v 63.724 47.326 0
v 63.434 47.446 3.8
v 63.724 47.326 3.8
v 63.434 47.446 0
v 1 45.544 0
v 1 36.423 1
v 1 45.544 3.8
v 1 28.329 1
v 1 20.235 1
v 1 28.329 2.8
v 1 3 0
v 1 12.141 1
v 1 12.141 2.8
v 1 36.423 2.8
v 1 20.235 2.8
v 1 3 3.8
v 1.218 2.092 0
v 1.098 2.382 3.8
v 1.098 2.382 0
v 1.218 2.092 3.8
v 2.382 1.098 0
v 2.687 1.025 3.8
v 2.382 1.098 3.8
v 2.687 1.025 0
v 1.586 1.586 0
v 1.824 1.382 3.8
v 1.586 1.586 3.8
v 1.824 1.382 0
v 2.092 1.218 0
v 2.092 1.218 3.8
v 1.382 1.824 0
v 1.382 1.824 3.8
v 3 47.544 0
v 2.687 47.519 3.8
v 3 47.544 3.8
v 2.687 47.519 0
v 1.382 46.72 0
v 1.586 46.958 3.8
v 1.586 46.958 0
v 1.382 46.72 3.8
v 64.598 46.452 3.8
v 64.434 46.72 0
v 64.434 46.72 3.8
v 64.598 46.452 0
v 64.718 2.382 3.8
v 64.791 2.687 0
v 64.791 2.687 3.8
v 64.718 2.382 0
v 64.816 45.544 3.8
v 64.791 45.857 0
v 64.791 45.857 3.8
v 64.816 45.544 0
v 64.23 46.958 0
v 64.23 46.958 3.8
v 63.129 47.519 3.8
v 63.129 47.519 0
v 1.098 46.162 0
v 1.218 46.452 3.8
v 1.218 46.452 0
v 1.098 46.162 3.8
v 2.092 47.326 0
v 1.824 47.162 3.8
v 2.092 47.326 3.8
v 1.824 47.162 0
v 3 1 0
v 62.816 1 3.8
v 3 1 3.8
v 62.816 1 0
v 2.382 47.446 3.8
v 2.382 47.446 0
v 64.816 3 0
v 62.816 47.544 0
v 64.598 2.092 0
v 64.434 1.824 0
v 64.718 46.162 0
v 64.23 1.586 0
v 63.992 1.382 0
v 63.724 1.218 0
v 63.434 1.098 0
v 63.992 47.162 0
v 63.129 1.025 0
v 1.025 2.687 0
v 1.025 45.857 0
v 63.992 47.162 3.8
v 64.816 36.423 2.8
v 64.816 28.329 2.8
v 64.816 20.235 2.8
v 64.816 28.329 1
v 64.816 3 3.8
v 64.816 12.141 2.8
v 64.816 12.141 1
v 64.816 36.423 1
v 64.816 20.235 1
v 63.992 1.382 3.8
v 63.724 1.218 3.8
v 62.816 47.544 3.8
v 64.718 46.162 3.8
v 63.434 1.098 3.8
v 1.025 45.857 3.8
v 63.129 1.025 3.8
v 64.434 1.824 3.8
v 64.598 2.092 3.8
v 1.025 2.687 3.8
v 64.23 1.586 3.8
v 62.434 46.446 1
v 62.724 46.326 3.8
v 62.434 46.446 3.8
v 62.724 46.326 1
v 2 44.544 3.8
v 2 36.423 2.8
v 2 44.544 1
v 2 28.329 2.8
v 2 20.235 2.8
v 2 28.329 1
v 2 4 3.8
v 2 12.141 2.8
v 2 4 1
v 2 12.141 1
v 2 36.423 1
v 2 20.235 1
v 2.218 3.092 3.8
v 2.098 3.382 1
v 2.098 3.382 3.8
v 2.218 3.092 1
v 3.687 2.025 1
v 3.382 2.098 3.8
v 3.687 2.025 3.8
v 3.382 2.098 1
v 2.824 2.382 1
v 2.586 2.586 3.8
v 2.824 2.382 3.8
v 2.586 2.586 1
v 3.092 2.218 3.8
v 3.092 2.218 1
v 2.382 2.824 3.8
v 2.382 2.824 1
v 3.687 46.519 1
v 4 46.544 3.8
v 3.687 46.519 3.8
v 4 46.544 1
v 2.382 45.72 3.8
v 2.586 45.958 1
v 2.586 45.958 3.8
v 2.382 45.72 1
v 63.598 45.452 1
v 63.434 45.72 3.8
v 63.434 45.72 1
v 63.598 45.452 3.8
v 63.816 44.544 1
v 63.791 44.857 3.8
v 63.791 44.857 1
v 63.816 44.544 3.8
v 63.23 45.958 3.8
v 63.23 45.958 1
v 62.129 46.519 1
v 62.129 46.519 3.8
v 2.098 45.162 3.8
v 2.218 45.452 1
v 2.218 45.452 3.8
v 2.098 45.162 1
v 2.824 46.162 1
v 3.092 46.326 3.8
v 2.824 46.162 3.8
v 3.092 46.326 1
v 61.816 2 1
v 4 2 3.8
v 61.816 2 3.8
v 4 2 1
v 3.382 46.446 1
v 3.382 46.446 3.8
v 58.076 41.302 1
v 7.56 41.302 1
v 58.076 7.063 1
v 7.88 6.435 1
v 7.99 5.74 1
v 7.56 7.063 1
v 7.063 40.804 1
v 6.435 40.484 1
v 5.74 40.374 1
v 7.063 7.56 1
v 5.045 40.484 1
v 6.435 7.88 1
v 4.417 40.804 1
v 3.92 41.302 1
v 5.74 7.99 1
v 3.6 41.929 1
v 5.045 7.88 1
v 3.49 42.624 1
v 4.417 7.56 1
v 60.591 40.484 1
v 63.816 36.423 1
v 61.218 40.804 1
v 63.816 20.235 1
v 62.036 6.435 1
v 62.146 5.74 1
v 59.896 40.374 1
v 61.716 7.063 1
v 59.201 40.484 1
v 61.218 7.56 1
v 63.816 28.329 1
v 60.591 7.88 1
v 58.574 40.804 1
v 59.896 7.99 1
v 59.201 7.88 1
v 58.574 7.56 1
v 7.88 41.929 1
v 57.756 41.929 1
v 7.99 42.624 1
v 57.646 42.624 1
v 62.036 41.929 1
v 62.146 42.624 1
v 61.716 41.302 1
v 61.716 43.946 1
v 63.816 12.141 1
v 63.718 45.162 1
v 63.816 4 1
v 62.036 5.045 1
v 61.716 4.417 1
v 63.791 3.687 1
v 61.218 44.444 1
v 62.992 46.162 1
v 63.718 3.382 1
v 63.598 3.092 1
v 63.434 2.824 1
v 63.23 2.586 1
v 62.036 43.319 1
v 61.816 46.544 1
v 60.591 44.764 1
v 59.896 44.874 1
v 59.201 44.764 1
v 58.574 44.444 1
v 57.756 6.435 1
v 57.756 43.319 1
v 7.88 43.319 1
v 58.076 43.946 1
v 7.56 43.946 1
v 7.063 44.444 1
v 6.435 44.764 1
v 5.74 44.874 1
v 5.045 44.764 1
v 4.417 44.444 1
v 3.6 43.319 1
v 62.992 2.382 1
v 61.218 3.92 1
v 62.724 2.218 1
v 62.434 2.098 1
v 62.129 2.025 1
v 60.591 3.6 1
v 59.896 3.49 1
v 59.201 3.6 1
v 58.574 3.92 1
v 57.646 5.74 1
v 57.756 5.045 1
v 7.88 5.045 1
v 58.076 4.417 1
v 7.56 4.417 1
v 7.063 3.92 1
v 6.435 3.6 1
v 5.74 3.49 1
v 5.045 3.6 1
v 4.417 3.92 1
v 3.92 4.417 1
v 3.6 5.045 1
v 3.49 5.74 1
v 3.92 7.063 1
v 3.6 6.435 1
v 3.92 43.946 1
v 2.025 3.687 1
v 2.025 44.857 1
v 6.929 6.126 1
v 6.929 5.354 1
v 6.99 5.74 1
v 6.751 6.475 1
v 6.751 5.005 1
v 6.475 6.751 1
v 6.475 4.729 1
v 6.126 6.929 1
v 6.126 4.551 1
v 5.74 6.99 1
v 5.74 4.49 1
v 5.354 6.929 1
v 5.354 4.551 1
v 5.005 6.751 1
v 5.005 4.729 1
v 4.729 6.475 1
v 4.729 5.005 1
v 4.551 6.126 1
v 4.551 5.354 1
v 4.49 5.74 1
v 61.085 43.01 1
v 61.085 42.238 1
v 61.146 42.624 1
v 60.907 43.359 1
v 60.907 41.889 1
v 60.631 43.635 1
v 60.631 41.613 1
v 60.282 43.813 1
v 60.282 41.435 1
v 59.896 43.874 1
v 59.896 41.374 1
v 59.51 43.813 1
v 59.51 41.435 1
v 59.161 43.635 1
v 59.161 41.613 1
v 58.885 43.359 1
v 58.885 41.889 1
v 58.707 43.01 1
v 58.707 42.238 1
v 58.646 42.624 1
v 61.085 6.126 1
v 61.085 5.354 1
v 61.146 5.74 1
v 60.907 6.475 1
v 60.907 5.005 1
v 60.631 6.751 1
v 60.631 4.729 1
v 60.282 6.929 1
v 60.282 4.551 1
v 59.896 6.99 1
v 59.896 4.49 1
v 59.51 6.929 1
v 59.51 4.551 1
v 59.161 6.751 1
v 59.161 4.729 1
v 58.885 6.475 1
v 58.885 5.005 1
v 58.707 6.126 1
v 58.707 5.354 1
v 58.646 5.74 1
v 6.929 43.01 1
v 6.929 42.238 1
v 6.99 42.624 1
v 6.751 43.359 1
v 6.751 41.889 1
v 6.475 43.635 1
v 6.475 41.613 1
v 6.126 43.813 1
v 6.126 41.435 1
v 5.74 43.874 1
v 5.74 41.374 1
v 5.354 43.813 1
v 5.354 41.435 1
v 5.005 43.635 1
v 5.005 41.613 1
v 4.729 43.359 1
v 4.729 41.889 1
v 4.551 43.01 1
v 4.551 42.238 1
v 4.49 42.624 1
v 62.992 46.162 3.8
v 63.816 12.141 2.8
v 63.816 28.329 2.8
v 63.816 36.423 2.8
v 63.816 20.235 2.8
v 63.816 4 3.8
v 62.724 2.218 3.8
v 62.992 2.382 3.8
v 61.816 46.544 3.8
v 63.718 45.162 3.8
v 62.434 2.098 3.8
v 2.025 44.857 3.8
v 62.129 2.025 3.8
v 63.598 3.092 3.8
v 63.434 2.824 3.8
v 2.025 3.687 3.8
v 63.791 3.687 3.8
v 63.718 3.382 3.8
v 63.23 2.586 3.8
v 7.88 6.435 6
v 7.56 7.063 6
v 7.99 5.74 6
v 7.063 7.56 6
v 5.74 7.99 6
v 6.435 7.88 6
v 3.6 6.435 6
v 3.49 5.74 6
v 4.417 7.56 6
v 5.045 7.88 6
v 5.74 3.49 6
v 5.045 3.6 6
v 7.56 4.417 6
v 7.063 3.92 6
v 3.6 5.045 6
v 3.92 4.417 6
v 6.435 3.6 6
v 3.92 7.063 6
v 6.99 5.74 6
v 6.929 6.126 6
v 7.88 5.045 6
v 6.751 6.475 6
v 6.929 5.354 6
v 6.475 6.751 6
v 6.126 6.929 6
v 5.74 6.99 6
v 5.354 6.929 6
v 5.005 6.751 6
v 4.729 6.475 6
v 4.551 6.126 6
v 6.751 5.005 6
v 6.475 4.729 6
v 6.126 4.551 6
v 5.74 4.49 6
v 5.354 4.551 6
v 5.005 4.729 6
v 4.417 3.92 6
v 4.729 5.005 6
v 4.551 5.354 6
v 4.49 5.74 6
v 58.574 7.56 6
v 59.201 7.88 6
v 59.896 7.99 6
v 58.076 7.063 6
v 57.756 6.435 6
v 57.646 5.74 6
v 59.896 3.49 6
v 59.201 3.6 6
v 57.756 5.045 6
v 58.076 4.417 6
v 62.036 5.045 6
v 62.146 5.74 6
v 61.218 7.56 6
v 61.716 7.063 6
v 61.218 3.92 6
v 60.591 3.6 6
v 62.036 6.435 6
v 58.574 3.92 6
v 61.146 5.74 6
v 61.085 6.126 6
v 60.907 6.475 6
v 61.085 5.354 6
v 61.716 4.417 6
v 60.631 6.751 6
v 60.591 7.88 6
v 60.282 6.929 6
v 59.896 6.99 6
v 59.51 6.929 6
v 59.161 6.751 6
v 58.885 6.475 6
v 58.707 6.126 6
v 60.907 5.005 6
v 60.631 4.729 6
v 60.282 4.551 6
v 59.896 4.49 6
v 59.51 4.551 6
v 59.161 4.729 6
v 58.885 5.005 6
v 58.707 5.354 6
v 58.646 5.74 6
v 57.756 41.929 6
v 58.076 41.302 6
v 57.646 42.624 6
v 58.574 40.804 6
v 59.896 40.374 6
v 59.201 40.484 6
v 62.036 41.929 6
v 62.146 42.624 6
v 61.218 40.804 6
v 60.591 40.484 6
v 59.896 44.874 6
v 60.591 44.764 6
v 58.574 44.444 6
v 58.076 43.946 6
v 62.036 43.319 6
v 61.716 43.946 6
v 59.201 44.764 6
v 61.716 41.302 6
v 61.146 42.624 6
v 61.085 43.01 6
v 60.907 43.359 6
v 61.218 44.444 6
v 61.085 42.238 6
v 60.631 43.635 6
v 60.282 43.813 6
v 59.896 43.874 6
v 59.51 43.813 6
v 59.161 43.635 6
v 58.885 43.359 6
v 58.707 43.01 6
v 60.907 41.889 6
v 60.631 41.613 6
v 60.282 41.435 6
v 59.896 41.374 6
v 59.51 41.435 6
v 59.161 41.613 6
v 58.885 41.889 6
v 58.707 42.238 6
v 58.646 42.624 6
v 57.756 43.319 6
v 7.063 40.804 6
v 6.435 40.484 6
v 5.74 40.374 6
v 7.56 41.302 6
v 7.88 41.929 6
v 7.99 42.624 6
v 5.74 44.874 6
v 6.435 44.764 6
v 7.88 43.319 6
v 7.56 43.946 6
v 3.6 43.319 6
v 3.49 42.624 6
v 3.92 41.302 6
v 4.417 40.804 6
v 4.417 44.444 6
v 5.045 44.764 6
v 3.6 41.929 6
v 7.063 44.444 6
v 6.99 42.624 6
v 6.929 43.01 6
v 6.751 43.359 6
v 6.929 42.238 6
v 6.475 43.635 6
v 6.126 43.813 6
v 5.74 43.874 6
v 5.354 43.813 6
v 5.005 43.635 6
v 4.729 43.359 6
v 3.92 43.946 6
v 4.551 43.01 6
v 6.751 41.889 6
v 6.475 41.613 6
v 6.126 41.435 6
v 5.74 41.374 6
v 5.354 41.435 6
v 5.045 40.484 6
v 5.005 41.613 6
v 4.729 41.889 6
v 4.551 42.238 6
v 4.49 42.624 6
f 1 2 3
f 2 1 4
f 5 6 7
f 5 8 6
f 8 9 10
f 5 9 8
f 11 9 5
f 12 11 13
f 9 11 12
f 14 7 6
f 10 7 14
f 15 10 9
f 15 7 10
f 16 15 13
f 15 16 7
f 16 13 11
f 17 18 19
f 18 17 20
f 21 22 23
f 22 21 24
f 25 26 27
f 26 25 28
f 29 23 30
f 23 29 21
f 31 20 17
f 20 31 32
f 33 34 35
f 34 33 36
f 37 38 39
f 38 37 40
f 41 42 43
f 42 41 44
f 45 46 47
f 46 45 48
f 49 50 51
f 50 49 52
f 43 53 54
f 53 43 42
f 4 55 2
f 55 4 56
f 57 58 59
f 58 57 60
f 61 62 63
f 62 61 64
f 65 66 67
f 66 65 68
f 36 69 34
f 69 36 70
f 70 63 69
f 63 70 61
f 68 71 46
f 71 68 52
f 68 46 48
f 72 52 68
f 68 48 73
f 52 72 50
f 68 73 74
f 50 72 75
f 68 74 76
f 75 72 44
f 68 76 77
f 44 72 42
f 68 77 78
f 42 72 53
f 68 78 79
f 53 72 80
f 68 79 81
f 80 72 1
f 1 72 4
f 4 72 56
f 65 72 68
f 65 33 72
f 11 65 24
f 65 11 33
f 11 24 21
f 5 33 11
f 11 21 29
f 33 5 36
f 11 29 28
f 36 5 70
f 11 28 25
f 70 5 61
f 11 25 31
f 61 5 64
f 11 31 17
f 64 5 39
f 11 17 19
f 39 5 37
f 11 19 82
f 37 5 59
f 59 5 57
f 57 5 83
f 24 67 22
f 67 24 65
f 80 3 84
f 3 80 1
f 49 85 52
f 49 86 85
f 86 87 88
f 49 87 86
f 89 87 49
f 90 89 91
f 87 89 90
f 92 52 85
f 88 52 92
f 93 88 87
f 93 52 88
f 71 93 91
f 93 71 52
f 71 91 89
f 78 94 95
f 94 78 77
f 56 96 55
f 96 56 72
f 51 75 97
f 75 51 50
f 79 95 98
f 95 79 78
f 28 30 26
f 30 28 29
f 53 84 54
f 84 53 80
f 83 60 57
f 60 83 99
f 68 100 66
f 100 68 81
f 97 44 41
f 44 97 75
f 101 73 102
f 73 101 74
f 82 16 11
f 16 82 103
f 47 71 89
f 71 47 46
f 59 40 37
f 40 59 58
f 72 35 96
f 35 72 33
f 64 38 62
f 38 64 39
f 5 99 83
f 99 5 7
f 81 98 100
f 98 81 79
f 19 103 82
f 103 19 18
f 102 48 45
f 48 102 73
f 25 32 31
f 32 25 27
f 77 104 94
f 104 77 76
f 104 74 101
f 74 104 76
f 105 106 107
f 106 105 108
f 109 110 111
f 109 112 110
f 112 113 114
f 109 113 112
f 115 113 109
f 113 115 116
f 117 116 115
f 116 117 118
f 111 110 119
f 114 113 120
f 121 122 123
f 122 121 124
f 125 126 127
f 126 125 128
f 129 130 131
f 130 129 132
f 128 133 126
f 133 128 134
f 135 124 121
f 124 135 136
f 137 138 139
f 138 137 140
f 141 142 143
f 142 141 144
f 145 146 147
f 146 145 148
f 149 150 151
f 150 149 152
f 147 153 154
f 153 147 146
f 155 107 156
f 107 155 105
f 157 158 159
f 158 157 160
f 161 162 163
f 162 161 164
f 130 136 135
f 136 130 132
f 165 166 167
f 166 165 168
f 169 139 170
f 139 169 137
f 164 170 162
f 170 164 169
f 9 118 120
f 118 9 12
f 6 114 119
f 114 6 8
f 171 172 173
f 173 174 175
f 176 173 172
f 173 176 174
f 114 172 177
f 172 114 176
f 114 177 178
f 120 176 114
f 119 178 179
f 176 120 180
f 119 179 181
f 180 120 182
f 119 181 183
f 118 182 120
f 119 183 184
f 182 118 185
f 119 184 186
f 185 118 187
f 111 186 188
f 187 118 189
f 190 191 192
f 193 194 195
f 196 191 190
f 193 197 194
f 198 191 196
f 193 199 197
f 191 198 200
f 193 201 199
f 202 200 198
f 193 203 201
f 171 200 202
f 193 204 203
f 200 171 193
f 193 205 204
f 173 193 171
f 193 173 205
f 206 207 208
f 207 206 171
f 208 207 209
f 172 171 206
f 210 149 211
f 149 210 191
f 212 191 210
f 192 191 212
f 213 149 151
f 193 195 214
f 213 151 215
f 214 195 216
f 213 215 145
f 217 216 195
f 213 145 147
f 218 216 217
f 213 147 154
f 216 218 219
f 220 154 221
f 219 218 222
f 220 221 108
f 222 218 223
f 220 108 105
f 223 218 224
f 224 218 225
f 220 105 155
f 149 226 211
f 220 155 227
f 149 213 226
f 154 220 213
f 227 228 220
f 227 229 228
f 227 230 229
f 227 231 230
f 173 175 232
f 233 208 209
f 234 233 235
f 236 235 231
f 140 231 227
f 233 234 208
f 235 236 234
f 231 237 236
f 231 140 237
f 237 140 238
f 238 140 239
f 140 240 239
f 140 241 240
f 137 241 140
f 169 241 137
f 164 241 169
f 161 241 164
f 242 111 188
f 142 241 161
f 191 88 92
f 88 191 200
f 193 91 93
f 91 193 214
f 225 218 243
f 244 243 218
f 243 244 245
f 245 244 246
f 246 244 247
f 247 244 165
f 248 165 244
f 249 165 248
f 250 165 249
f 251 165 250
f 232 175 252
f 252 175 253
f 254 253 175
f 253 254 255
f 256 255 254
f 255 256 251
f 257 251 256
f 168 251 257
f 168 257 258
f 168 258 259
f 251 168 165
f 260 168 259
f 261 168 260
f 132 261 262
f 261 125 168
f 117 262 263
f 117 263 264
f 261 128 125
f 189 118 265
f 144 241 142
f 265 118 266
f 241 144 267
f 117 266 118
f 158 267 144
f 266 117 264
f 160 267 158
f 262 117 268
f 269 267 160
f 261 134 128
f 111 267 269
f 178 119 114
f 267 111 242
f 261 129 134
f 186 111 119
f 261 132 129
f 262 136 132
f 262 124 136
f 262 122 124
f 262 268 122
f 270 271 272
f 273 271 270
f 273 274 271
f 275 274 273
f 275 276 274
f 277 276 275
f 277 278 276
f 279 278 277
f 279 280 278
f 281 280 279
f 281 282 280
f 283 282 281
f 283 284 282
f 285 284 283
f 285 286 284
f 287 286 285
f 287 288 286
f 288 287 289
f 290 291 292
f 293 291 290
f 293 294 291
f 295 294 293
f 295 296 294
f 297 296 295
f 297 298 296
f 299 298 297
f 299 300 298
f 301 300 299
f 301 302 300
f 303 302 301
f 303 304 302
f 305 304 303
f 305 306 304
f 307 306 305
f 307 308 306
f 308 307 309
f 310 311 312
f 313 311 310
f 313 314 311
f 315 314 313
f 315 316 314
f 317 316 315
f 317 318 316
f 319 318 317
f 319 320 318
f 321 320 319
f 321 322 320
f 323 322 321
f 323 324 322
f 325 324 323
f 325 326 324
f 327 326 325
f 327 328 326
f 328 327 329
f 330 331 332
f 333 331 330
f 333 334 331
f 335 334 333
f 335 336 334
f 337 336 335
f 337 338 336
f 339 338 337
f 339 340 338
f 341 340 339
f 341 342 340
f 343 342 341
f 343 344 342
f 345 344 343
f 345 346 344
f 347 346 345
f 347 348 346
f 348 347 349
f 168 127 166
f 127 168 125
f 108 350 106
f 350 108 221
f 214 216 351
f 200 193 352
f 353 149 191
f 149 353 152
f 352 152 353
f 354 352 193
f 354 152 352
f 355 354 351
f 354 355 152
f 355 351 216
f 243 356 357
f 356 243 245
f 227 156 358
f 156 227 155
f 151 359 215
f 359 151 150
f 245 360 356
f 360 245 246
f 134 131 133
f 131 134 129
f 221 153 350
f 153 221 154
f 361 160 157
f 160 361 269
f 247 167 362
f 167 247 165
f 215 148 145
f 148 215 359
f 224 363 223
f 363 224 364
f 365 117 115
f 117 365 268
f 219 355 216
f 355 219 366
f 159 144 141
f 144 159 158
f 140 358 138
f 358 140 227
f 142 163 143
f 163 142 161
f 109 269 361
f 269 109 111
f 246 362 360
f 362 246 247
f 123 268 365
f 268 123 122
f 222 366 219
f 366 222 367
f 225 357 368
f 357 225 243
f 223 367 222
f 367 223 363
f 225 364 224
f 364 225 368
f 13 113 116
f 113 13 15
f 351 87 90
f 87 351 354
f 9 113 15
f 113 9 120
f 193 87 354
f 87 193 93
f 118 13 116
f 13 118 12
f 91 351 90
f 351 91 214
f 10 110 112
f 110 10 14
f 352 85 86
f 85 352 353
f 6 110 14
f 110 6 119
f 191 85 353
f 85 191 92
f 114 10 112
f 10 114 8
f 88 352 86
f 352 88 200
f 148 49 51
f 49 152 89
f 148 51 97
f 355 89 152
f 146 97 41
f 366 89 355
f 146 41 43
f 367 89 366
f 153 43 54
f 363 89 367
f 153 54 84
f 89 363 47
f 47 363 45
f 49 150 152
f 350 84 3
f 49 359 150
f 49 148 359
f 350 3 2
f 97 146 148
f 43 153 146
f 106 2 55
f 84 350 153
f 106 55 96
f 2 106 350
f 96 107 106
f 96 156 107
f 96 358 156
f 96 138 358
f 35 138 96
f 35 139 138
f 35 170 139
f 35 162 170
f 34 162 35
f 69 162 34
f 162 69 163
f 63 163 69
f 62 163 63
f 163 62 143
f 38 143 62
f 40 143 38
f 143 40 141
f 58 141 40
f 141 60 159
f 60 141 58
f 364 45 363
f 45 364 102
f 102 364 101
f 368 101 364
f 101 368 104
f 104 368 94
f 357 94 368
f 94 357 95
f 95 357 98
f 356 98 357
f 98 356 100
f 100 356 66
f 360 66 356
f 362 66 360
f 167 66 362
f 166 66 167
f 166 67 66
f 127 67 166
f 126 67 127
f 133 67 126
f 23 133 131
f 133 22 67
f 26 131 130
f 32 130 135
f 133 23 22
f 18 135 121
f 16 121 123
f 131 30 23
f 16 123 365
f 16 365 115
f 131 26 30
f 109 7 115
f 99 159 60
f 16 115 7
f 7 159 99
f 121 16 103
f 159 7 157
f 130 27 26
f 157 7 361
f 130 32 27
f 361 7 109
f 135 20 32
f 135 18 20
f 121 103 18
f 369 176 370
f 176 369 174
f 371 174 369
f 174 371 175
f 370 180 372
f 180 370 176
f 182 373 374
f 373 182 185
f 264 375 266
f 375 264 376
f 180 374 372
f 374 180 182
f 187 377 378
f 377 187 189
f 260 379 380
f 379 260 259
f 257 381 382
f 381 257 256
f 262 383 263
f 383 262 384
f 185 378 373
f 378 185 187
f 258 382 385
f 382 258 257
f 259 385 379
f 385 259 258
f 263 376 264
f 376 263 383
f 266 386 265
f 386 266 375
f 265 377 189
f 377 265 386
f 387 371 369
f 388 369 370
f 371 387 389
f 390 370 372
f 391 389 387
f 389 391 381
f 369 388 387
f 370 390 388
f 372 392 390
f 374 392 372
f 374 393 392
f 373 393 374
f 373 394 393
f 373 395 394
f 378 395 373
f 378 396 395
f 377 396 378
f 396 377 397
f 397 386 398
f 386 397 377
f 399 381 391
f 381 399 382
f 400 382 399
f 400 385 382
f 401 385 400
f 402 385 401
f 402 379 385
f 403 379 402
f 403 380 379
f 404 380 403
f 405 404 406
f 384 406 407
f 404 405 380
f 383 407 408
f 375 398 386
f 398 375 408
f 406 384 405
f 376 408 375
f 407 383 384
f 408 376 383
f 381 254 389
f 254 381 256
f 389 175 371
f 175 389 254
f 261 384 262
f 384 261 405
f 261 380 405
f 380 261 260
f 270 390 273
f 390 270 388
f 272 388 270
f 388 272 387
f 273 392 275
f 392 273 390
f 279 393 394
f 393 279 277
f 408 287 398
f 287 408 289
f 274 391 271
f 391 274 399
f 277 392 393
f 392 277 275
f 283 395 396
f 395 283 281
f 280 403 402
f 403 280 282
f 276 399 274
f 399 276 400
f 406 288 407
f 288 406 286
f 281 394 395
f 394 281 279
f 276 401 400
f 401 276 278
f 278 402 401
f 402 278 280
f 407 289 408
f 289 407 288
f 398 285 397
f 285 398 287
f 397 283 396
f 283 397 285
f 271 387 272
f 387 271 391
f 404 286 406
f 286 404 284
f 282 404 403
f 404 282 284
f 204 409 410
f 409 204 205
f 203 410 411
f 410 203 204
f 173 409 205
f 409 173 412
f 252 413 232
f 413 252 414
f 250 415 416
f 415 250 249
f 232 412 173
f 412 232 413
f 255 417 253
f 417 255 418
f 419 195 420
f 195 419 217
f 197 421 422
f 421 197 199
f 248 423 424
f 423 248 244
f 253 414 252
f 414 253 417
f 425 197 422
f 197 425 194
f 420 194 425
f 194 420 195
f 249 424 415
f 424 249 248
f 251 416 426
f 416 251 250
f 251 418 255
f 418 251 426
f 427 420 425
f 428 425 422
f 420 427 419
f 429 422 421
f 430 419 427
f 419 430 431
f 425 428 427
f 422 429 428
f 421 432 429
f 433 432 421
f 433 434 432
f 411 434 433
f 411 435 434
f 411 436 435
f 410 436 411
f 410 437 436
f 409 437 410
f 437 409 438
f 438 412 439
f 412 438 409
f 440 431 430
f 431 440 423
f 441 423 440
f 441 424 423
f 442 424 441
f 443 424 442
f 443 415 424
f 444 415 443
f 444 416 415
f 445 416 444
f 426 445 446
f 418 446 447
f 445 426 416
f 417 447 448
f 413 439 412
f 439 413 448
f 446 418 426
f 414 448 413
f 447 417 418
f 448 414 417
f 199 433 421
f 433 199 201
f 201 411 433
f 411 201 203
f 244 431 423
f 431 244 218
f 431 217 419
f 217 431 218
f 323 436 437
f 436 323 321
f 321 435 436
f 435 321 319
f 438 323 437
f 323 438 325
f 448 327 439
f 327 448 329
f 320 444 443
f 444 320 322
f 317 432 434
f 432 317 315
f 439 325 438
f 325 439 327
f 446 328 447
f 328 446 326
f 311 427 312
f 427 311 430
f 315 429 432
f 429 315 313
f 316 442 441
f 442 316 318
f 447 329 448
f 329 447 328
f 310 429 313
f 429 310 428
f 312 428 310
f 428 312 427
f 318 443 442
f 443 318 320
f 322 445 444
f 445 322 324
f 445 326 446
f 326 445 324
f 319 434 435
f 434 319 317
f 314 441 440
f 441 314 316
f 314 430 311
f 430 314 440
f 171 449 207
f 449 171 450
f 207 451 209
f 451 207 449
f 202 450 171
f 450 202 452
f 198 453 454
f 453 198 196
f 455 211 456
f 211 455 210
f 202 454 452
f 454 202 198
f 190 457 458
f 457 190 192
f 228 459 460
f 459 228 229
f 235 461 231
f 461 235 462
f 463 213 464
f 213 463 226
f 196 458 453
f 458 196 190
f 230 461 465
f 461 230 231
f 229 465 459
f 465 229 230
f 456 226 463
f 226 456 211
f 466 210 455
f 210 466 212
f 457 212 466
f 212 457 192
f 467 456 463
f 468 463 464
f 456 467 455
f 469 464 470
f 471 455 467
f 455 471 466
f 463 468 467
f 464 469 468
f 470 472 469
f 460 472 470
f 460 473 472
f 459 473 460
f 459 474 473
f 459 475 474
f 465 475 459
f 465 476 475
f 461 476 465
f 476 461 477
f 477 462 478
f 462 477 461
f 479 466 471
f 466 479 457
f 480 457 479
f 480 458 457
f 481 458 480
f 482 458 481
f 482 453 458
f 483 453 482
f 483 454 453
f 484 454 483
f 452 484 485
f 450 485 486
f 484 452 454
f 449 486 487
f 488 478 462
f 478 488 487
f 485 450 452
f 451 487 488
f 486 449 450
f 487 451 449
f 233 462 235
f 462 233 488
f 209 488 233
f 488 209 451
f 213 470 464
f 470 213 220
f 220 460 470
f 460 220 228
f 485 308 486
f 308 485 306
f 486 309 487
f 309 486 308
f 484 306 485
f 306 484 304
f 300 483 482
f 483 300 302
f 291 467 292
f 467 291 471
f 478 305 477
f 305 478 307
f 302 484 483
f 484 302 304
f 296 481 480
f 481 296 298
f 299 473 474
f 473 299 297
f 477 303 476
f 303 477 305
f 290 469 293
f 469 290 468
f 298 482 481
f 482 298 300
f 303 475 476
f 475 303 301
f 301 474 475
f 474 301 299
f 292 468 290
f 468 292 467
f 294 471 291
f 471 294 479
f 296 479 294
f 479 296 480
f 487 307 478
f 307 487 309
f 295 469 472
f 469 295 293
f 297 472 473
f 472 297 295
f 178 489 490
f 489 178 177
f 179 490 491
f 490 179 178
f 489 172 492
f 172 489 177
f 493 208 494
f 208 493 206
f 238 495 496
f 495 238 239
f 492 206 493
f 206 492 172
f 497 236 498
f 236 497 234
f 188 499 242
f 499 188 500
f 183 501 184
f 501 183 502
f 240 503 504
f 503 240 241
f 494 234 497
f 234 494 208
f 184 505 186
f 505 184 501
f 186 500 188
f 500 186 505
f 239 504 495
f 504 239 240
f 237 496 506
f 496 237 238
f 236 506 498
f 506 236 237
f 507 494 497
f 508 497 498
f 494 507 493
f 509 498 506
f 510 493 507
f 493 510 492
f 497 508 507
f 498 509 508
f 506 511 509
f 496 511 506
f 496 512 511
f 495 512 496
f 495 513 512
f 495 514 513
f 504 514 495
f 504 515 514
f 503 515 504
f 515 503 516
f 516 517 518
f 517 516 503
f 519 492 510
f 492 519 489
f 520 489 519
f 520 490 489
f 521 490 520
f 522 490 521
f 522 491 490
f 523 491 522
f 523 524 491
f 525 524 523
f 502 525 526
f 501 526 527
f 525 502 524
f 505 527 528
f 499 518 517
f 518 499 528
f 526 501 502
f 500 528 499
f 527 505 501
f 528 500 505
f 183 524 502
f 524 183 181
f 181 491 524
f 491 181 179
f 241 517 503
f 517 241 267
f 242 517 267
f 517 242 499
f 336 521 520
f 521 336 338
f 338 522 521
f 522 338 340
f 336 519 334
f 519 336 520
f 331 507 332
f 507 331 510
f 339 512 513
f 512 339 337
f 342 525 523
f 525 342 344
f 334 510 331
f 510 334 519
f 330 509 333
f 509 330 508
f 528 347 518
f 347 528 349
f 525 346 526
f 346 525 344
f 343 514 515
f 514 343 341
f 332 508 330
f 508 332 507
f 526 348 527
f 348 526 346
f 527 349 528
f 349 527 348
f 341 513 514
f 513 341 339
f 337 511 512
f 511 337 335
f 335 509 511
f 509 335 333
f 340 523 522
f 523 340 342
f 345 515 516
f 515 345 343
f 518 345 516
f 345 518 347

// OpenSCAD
// file: ProjectBox/util.scad
// Copyright (c) 2024 Chris Lee and contibuters.
// Licensed under the MIT license. See LICENSE file in the project root for details.

include <MCAD/units.scad>

ones = [1, 1, 1];

module RX(angle) {
  rotate(angle, X) children();
}
module RY(angle) {
  rotate(angle, Y) children();
}
module RZ(angle) {
  rotate(angle, Z) children();
}
module TX(dist) {
  translate(X*dist) children();
}
module TX(dist) {
  translate(X*dist) children();
}
module TY(dist) {
  translate(Y*dist) children();
}
module TZ(dist) {
  translate(Z*dist) children();
}

// x-extra and y-extra adjust the x/y offset at the far-x and far-y corners.
module at_corners(dims, corner_offset, to_draw=undef, x_extra=0.0, y_extra=0.0) {
  o = corner_offset;
  if (!to_draw || to_draw[0]) translate([o, o, 0]) children();
  if (!to_draw || to_draw[1]) translate([dims[0]-o+x_extra, o, 0]) rotate(90, Z) children();
  if (!to_draw || to_draw[2]) translate([dims[0]-o+x_extra, dims[1]-o+y_extra, 0])
				rotate(180, Z) children();
  if (!to_draw || to_draw[3]) translate([o, dims[1]-o+y_extra, 0]) rotate(270, Z) children();
}
// file: ProjectBox/screw_tab.scad
// Copyright (c) 2024 Chris Lee and contibuters.
// Licensed under the MIT license. See LICENSE file in the project root for details.

include <MCAD/units.scad>

// Screw tab is drawn in the y-direction (attached on -Y side).
module screw_tab(tab_width=10, thickness=2, screw_radius=2) {
  $fn=40;
  dz = thickness;
  sd = tab_width;
  sr = tab_width / 2;
  translate([-sr, -epsilon, 0]) difference() {
    union() {
      cube([sd, sr, dz]);
      translate([sr, sr, 0]) cylinder(dz, sr, sr);
    }
    translate([sr, sr, -epsilon]) cylinder(dz+1, screw_radius, screw_radius);
  }
}
// file: ProjectBox/rounded_box.scad
// Copyright (c) 2024 Chris Lee and contibuters.
// Licensed under the MIT license. See LICENSE file in the project root for details.

module rounded_box(dims, r) {
  x = dims[0];
  y = dims[1];
  z = dims[2];
  module cyl() {
    cylinder(z, r, r, $fn=40);
  }
  if (r == 0) {
    cube(r);
  } else {
    hull() {
      translate([r, r, 0]) cyl();
      translate([x-r, r, 0]) cyl();
      translate([x-r, y-r, 0]) cyl();
      translate([r, y-r, 0]) cyl();
    }
  }
}
// file: board.scad
include <ProjectBox/project_box.scad>

board_thickness = 1.6;
pad_space = 2.54;
board_dims = [23.4*pad_space, 16.6*pad_space, board_thickness];

module Plant1337_to_oled_frame() {
  u = pad_space;
  translate([u*23-0.5, 0.6, 13]) rotate([0, 0, 90]) children();
}

module oled() {
  s = inch * 0.1;
  pin_len = 4;
  color("silver") {
    for (i = [0: 3]) {
      translate([s*i+pad_space, pad_space/2, -pin_len]) cube([0.25, 0.25, pin_len]);
    }
  }
  color("gray") cube([12, 38, 1]);
  translate([0, 5.5, 1]) color("black") cube([12, 28, 1]);
}

module Plant1337_board() {
  u = pad_space;

  // Board imported from KiCad (VRML) -> meshlab
  translate([board_dims[0]/2, board_dims[1]/2, board_dims[2]/2]) color("white")
    import(file="Plant1337.stl", convexity=3);

  Plant1337_to_oled_frame() oled();
}
// file: ProjectBox/shtc3_window.scad
// Copyright (c) 2024 Chris Lee and contibuters.
// Licensed under the MIT license. See LICENSE file in the project root for details.

module shtc3_window(offset, space_above_board, wall, negative, z_gap = 0.0) {
  sz = [3, 3, 1];
  translate(offset) {
    if (negative) {
      translate([0, 0, z_gap-1]) {
	cube([sz[0], sz[1], space_above_board+wall+2-z_gap]);
      }
    } else {
      translate([-wall, -wall, z_gap+epsilon]) {
	cube([sz[0] + 2*wall, sz[1] + 2*wall, space_above_board-z_gap]);
      }
    }
  }
}
// file: ProjectBox/mounts.scad
// Copyright (c) 2024 Chris Lee and contibuters.
// Licensed under the MIT license. See LICENSE file in the project root for details.

module screw_mount(height, wall, screw_radius) {
  $fn = 20;
  difference() {
    cylinder(height, screw_radius+wall, screw_radius+wall);
    cylinder(height+epsilon, screw_radius, screw_radius);
  }
}
// file: ProjectBox/project_box.scad
// Copyright (c) 2024 Chris Lee and contibuters.
// Licensed under the MIT license. See LICENSE file in the project root for details.

include <MCAD/units.scad>
include <rounded_box.scad>
include <screw_tab.scad>
use <util.scad>

bump_d = 0.8;

module in_board_frame(outer_dims, board_dims, space_below_board) {
  translate([(outer_dims[0] - board_dims[0])/2,
	     (outer_dims[1] - board_dims[1])/2,
	     space_below_board])
    children();
}

default_tab_len = 10;
function tab_length(dim, num_tabs=2) = min(default_tab_len, dim/(2*(num_tabs+1)));
function tab_offset(i, dim, num_tabs=2) = (dim*(i+1)/(num_tabs+1))-0.5*tab_length(dim, num_tabs);

module project_box(outer_dims,
		   wall_thickness=1,
		   gap=0.1,
		   // If true put snaps for top/bottom on sides rather than front/back.
		   snaps_on_sides=false,
		   corner_radius=0.0,
		   top=true,
		   top_cutouts=undef,
		   ym_cutouts=undef,
		   screw_tab_d=0) {
  wall = wall_thickness;
  num_snaps = 2;

  // Length of side of box snap-tabs will be added.
  tabdim = snaps_on_sides ? outer_dims[1] : outer_dims[0];
  // Length of snap-tab holes (tabs shrinks slightly to fit).
  tablen = tab_length(tabdim, num_snaps);
  // Difference between tab length and tab hole length;
  tab_gap = 1;

  // Space between bottom of box and top of box.
  fit_gap = 0.02;

  // The bottom of the box fits inside the shell of the top.
  dims = top ? outer_dims : outer_dims - (2*wall+fit_gap) * [1, 1, 1];

  // Tabs for clicking base into start at wall-height, are 2*wall-height high.
  // Allow 2*wall_height above bump for hight of bottom part of box.
  tab_depth = min(bump_d, dims[2] - 3*wall);
  bottom_height = wall+tab_depth+2*wall;

  module bump() {
    dh = bump_d - fit_gap;
    rotate(90, Y) cylinder(tablen-tab_gap, dh, dh, $fn=20);
  }

  module hump_positives(humps, space_above_board, corner_radius, wall) {
    for (hump = humps) {
      offset = hump[0];
      outer_dims = hump[1];
      z_start = gap * 2 + wall + space_below_board + board_thickness + space_above_board + epsilon;
      translate([offset[0], offset[1], z_start]) rounded_box(outer_dims, corner_radius);
    }
  }
  module hump_negatives(humps, space_above_board, corner_radius, wall) {
    for (hump = humps) {
      offset = hump[0];
      outer_dims = hump[1];
      z_start = gap * 2 + wall + space_below_board + board_thickness + space_above_board - epsilon - epsilon;
      translate([offset[0]+wall, offset[1]+wall, z_start])
	rounded_box(outer_dims-[wall*2, wall*2, wall], corner_radius);
    }
  }
  module cutouts(cutout_list, remove_len) {
    for (cutout = cutout_list) {
      offset = cutout[0];
      dims = cutout[1];
      translate([offset[0], offset[1], 0]) cube([dims[0], dims[1], remove_len]);
    }
  }

  wedge_dx = 2*wall;
  wedge_dy = min(outer_dims[1]-2*wall-corner_radius, 10);
  wedge_dz = wedge_dx;
  module wedge() {
    // Bump to stop the bottom of box to go too up into the top.
    translate([0, 0, bottom_height+fit_gap]) {
      // Start with cube, switch to wedge for printing.
      translate(Y*wedge_dy) rotate(90, X)
	linear_extrude(wedge_dy) polygon([[0, 0], [0, wedge_dz], [wedge_dx, 0]]);
    }
  }

  // The bottom of the box fits inside the shell of the top.
  translate(top ? [0,0,0] : wall*[1, 1, 0]) union() {
    difference() {
      // shell
      difference() {
	union() {
	  rounded_box(dims, corner_radius);
	  if (top)
	    hump_positives(bumps, space_above_board, corner_radius, wall);
	}
	iz = top ? (dims[2] - 2*wall) : dims[2];  // inner-z
	translate(ones*wall) rounded_box([dims[0] - wall*2, dims[1]-wall*2, iz], corner_radius);
	if (top) {
	  hump_negatives(bumps, space_above_board, corner_radius, wall);
	  // cutouts from the top surface
	  if (top_cutouts)
	    cutouts(top_cutouts, remove_len=100);
	  // cutouts from the y=0 surface
	  if (ym_cutouts)
	    translate([0, 1+wall, 0]) rotate([90, 0, 0]) cutouts(ym_cutouts, remove_len=(wall+2));
	}
      }

      if (!top) {
	// Box bottom

	// Cut off top.
	translate([-1, -1, bottom_height]) { cube(dims + 2 * ones); }
	// Make a slot for top to click into
	bottom_offset = -wall;  // offset to account for bottom fitting inside top.
	if (snaps_on_sides) {
	  for (isnap = [0:num_snaps-1]) {
	    y = tab_offset(isnap, tabdim, num_snaps) + bottom_offset;
	    translate([-1, y, wall]) cube([dims[0]+2, tablen, wall+tab_depth]);
	  }
	} else {
	  for (isnap = [0:num_snaps-1]) {
	    x = tab_offset(isnap, tabdim, num_snaps) + bottom_offset;
	    translate([x, -1, wall]) cube([tablen, dims[1]+2, wall+tab_depth]);
	  }
	}
      }	else {
	// Box top

	// Cut out for bottom
	translate(wall*[1, 1, -1]) {
	  rounded_box([dims[0]-2*wall, dims[1]-2*wall, wall*3], corner_radius);
	}
      }
    }

    // Board supports
    if (top) {
      // Snaps: Make bumps to click into slot in bottom.
      if (snaps_on_sides) {
	for (isnap = [0:num_snaps-1]) {
	  y = tab_offset(isnap, tabdim, num_snaps) + tab_gap/2;
	  translate([wall-epsilon, y, wall+gap/2]) rotate(90, Z) bump();
	  translate([dims[0]+epsilon-wall, y, wall+gap/2]) rotate(90, Z) bump();
	}
	translate([wall-epsilon, (outer_dims[1]-wedge_dy)/2, 0]) wedge();
	translate([outer_dims[0]-wall+epsilon, (outer_dims[1]+wedge_dy)/2, 0])
	  rotate(180, Z) wedge();
      } else {
	for (isnap = [0:num_snaps-1]) {
	  x = tab_offset(isnap, tabdim, num_snaps) + tab_gap/2;
	  translate([x, wall-epsilon, wall+gap/2]) bump();
	  translate([x, dims[1]+epsilon-wall, wall+gap/2]) bump();
	}
	translate([(outer_dims[0]+wedge_dy)/2, wall-epsilon, 0]) rotate(90, Z) wedge();
	translate([(outer_dims[0]-wedge_dy)/2, outer_dims[1]-wall+epsilon, 0])
	  rotate(270, Z) wedge();
      }
    }
  }

  if (top && screw_tab_d > 0) {
    translate([outer_dims[0]/2, outer_dims[1], 0])
      screw_tab(tab_width=screw_tab_d, thickness=2*wall, screw_radius=2);
  }
}

module holder_tab(wall_thickness, thickness=2, out_r=4, in_r=2) {
  translate(Z*wall_thickness) linear_extrude(thickness) {
    $fn = 20;
    y = epsilon;
    difference() {
      hull() {
	translate([0, epsilon-out_r]) circle(out_r);
	polygon([[-out_r, epsilon], [out_r, epsilon],
		 [out_r, 2*epsilon], [out_r, 2*epsilon]]);
      }
      translate([0, -out_r]) circle(in_r);
    }
  }
}
// file: gui.scad
// :GUI:
show_vitamins = true;
// :GUI:
show_box = true;
// :GUI:
top = true;
// file: box.scad
include <ProjectBox/project_box.scad>
include <ProjectBox/mounts.scad>
include <ProjectBox/shtc3_window.scad>
include <board.scad>

ones = [1, 1, 1];

wall_thickness = 1;
gap = 0.2;
corner_radius = 2;
mount_offset = pad_space;

space_above_board = 2;
space_below_board = 5;
inner_dims = (board_dims
	      + Z*(space_above_board+space_below_board)
	      + 2*gap*ones);
outer_dims = (inner_dims
	      + 2*ones*wall_thickness
	      + [2, 2, 0] * corner_radius);

// OLED bump offset and dims
oled_o = [20, 0];
oled_d = [outer_dims[0] - oled_o[0], 17, 12];

// bumps is a list of [offset-xy, outer_dims]
bumps = [[oled_o, oled_d]];

// cutout for moisture & pump
conns_o = [31.5, 17.1];
conns_d = [30.5, 21];
// cutout for water-level sensor
wlconn_o = [conns_o[0], conns_o[1]+conns_d[1]-epsilon];
wlconn_d = [8.5, 7];
// cutout for oled screen
olsc_o = [oled_o[0] + 7.5, oled_o[1] + 3.5];
olsc_d = [28, 12];
// top_cutouts is a list of [offset-xy,  dims-xu]
top_cutouts = [[conns_o, conns_d], [wlconn_o, wlconn_d], [olsc_o, olsc_d]];

usb_cutout = [[25, wall_thickness+space_below_board+board_thickness-1], [9.5, 3.5]];
ym_cutouts = [usb_cutout];

module in_Plant1337_board_frame(board_height=false) {
  zoffset = wall_thickness + (board_height ? space_below_board + 2*gap + board_thickness : 0);
  in_board_frame(outer_dims, board_dims, zoffset) children();
}

module Plant1337_box(top) {
  wall = wall_thickness;
  shtc3_loc = [board_dims[0] - 10.5, board_dims[1]-5, 0];

  difference() {
    union() {
      project_box(outer_dims,
		  wall_thickness=wall_thickness,
		  gap=gap,
		  snaps_on_sides=true,
		  corner_radius=corner_radius,
		  top=top,
		  top_cutouts=top_cutouts,
		  ym_cutouts=ym_cutouts);
      if (top) {
	in_Plant1337_board_frame(board_height=true)
	  shtc3_window(shtc3_loc, space_above_board+wall, wall, false, z_gap=-1);
      } else {
	// Stuff to add on bottom.
	in_Plant1337_board_frame() {
	  at_corners(board_dims+1.0*X, mount_offset, x_extra=-1.2, y_extra=-0.2)
	    screw_mount(space_below_board, wall, 2.5/2);
	}
      }	
    }
    // Stuff to remove.
    if (top) {
      in_Plant1337_board_frame(board_height=true)
	shtc3_window(shtc3_loc, space_above_board, wall, true, z_gap=-1);
    }
  }
}
// main file
include <box.scad>
include <gui.scad>

top = false;

Plant1337_box(top);
